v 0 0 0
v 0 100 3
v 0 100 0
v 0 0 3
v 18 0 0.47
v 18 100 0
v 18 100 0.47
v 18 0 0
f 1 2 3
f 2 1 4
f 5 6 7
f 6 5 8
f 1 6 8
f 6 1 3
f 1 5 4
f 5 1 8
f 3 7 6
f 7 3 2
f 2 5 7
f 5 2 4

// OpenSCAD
length = 18;
diameter = 18;
wallThickness = 3;
angle = 8;
floorThickness = 10;
height = 3;

width = 100;


difference(){
 cube([length, width, height]);
 translate([0, 0, height])
    rotate([0, angle, 0])
        cube([length + 1, width, height]);
    
    
}
